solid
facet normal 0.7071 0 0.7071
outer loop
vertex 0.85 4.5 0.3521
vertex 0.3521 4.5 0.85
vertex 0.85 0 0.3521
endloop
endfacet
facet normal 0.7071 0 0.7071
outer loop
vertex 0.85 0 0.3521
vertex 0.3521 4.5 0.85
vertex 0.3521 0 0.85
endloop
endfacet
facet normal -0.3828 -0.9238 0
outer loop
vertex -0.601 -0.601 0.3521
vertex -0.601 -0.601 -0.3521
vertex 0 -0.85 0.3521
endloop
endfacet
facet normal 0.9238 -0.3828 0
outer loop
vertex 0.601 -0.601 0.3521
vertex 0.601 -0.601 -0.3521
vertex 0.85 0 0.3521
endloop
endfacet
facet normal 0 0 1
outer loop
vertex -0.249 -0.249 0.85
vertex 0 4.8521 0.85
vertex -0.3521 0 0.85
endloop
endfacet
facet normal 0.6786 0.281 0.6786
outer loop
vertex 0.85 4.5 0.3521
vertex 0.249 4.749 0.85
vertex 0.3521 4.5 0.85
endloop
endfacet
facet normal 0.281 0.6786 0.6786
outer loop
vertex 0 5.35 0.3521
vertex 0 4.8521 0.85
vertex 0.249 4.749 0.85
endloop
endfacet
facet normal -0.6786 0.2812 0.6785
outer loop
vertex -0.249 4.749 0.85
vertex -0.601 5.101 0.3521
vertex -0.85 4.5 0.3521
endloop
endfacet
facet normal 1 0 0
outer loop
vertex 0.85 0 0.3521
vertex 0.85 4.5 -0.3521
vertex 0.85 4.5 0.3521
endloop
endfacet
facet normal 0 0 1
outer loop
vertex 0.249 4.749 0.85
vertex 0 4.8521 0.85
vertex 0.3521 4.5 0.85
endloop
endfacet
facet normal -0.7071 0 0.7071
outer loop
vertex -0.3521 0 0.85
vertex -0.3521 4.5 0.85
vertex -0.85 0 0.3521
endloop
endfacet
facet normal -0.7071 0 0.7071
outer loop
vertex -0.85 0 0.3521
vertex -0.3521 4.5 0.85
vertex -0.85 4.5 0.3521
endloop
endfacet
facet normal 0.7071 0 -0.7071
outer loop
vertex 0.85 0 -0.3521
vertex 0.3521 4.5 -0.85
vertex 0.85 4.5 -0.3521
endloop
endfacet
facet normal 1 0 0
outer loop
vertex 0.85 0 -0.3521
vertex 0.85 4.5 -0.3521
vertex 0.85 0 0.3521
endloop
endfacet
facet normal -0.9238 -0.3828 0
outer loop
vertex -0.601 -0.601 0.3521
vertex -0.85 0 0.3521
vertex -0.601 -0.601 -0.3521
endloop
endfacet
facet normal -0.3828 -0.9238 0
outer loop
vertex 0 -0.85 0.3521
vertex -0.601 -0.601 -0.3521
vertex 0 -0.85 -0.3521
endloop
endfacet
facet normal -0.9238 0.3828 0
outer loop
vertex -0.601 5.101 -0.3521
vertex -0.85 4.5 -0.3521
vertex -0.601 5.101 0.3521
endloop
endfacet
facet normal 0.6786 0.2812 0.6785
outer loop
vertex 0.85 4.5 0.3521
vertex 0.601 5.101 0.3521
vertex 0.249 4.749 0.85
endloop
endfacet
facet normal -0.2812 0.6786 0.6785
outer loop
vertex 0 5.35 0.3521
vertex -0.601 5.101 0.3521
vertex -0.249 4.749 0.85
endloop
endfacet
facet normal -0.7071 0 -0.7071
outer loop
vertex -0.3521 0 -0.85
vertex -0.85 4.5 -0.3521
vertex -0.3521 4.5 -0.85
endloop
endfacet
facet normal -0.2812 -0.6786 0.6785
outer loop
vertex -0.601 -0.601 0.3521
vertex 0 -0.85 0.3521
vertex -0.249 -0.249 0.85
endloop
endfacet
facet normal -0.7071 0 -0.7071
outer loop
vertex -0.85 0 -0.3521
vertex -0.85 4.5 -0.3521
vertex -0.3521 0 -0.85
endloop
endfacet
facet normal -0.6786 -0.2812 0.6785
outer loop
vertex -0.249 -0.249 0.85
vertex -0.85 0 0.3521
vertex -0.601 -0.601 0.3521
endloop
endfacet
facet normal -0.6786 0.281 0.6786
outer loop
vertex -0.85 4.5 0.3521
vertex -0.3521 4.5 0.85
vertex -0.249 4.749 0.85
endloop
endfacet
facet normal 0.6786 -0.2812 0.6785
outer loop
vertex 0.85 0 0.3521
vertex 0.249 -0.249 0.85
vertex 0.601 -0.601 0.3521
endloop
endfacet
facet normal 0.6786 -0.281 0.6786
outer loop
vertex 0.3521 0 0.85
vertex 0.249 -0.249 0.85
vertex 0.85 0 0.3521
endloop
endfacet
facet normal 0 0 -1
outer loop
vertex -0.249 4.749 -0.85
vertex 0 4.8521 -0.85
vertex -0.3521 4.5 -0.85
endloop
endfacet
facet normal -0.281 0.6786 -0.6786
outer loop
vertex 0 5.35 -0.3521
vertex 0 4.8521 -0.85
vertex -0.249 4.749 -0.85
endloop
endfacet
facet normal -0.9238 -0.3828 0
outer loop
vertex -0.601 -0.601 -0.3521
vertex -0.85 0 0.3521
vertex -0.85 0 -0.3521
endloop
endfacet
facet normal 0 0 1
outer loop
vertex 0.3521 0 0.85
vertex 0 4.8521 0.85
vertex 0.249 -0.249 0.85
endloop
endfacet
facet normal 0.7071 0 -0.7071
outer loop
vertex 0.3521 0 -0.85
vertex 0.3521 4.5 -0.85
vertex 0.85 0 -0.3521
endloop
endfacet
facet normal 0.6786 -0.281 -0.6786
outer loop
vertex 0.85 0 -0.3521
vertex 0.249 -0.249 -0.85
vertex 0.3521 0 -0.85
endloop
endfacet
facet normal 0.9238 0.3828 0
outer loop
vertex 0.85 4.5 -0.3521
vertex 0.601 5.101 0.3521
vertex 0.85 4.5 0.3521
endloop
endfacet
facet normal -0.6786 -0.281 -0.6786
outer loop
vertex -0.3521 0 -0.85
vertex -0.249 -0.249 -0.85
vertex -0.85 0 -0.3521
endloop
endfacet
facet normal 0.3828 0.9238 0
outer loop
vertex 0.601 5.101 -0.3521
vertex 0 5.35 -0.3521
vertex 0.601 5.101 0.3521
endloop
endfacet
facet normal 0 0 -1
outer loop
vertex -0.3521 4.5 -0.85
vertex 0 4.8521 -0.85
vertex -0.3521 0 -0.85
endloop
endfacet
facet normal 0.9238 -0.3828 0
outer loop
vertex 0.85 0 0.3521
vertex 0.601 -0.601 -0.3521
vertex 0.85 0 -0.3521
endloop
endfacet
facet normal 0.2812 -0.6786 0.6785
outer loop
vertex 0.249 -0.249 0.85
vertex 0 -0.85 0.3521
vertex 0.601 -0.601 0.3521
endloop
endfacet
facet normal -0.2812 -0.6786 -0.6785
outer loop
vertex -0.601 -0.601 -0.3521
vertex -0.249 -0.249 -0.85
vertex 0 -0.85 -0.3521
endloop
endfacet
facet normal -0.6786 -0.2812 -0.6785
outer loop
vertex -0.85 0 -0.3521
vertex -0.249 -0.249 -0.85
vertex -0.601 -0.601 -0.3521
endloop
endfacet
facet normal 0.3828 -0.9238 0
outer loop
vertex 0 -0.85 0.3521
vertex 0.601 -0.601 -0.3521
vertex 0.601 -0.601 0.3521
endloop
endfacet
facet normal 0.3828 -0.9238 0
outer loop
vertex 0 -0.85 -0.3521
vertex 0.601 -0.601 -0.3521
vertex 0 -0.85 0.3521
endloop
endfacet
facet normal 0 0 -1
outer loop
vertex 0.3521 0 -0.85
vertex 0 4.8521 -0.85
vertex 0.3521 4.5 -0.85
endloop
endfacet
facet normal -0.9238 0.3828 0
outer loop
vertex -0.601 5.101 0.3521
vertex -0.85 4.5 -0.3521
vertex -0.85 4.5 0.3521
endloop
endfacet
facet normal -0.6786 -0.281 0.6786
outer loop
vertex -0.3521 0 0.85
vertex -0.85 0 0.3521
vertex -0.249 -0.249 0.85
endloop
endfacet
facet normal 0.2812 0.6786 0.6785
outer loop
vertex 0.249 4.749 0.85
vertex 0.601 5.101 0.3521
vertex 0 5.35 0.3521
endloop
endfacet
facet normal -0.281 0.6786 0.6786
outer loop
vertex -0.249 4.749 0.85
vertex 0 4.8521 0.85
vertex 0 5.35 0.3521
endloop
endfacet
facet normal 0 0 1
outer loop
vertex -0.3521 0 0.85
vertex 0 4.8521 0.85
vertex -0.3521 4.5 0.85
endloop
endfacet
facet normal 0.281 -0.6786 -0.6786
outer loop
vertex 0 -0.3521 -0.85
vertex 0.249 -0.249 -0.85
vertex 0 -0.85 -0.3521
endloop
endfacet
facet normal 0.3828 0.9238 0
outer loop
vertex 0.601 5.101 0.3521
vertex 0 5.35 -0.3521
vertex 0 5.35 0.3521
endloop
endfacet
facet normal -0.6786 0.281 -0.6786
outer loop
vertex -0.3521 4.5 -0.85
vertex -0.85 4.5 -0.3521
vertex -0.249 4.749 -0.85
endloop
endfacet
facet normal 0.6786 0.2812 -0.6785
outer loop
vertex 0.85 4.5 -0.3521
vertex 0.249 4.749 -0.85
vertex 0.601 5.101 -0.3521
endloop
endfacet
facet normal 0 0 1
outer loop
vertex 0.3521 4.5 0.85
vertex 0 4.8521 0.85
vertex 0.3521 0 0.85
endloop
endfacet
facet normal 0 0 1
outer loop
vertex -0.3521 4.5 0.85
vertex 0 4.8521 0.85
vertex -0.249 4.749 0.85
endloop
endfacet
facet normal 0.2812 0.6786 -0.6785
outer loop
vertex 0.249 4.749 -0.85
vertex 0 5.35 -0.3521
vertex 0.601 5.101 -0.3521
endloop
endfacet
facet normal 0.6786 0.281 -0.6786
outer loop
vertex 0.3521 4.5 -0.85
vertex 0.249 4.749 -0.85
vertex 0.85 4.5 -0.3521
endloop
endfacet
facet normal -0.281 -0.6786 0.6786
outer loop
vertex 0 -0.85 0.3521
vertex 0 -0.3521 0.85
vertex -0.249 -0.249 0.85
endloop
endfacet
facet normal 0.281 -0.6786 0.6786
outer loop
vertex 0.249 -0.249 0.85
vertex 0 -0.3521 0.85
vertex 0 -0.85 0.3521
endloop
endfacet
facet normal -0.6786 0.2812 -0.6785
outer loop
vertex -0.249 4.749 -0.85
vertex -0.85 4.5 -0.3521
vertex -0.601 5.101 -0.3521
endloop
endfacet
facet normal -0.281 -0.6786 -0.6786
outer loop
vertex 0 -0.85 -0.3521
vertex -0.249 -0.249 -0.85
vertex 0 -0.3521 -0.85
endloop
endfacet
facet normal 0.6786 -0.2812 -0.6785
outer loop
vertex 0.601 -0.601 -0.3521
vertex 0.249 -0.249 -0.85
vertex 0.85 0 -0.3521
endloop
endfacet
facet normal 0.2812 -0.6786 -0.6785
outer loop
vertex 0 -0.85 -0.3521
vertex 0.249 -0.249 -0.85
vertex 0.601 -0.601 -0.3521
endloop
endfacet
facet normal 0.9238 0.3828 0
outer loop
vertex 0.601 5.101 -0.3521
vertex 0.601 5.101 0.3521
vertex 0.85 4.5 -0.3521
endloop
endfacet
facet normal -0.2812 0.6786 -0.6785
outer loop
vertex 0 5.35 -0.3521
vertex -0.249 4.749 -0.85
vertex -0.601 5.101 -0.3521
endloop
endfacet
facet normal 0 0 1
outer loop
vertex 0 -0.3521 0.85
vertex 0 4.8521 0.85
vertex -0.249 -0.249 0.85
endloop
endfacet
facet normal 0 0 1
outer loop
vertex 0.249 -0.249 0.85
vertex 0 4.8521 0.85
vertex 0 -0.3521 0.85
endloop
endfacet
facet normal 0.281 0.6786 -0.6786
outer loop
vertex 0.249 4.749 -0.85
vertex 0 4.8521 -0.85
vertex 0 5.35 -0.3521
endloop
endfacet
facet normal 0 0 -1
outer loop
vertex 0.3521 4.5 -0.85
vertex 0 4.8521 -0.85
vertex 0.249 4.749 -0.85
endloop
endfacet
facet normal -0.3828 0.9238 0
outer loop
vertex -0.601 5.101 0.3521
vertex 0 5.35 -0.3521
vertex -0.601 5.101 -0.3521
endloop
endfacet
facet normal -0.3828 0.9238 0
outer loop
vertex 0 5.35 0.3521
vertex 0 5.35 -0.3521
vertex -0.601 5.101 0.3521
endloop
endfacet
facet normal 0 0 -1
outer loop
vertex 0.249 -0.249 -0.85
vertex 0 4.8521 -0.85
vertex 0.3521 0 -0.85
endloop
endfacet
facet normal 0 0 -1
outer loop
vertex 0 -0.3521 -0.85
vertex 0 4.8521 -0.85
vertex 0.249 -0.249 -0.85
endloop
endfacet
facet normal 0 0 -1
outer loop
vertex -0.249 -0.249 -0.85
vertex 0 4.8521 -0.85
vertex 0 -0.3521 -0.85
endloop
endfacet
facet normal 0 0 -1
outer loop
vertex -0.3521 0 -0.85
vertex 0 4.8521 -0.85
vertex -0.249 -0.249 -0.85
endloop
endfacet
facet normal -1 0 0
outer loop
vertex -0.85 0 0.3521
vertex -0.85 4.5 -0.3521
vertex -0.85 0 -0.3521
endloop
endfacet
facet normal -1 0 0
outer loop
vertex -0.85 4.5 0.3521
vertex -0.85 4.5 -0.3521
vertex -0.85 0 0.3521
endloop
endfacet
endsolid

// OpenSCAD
module rod(a, b, r) {
        hull() {
            translate(a) sphere(r,$fn=8);
            translate(b) sphere(r,$fn=8);
        }
    }

rod([0,0,0],[0,4.5,0],0.92);
